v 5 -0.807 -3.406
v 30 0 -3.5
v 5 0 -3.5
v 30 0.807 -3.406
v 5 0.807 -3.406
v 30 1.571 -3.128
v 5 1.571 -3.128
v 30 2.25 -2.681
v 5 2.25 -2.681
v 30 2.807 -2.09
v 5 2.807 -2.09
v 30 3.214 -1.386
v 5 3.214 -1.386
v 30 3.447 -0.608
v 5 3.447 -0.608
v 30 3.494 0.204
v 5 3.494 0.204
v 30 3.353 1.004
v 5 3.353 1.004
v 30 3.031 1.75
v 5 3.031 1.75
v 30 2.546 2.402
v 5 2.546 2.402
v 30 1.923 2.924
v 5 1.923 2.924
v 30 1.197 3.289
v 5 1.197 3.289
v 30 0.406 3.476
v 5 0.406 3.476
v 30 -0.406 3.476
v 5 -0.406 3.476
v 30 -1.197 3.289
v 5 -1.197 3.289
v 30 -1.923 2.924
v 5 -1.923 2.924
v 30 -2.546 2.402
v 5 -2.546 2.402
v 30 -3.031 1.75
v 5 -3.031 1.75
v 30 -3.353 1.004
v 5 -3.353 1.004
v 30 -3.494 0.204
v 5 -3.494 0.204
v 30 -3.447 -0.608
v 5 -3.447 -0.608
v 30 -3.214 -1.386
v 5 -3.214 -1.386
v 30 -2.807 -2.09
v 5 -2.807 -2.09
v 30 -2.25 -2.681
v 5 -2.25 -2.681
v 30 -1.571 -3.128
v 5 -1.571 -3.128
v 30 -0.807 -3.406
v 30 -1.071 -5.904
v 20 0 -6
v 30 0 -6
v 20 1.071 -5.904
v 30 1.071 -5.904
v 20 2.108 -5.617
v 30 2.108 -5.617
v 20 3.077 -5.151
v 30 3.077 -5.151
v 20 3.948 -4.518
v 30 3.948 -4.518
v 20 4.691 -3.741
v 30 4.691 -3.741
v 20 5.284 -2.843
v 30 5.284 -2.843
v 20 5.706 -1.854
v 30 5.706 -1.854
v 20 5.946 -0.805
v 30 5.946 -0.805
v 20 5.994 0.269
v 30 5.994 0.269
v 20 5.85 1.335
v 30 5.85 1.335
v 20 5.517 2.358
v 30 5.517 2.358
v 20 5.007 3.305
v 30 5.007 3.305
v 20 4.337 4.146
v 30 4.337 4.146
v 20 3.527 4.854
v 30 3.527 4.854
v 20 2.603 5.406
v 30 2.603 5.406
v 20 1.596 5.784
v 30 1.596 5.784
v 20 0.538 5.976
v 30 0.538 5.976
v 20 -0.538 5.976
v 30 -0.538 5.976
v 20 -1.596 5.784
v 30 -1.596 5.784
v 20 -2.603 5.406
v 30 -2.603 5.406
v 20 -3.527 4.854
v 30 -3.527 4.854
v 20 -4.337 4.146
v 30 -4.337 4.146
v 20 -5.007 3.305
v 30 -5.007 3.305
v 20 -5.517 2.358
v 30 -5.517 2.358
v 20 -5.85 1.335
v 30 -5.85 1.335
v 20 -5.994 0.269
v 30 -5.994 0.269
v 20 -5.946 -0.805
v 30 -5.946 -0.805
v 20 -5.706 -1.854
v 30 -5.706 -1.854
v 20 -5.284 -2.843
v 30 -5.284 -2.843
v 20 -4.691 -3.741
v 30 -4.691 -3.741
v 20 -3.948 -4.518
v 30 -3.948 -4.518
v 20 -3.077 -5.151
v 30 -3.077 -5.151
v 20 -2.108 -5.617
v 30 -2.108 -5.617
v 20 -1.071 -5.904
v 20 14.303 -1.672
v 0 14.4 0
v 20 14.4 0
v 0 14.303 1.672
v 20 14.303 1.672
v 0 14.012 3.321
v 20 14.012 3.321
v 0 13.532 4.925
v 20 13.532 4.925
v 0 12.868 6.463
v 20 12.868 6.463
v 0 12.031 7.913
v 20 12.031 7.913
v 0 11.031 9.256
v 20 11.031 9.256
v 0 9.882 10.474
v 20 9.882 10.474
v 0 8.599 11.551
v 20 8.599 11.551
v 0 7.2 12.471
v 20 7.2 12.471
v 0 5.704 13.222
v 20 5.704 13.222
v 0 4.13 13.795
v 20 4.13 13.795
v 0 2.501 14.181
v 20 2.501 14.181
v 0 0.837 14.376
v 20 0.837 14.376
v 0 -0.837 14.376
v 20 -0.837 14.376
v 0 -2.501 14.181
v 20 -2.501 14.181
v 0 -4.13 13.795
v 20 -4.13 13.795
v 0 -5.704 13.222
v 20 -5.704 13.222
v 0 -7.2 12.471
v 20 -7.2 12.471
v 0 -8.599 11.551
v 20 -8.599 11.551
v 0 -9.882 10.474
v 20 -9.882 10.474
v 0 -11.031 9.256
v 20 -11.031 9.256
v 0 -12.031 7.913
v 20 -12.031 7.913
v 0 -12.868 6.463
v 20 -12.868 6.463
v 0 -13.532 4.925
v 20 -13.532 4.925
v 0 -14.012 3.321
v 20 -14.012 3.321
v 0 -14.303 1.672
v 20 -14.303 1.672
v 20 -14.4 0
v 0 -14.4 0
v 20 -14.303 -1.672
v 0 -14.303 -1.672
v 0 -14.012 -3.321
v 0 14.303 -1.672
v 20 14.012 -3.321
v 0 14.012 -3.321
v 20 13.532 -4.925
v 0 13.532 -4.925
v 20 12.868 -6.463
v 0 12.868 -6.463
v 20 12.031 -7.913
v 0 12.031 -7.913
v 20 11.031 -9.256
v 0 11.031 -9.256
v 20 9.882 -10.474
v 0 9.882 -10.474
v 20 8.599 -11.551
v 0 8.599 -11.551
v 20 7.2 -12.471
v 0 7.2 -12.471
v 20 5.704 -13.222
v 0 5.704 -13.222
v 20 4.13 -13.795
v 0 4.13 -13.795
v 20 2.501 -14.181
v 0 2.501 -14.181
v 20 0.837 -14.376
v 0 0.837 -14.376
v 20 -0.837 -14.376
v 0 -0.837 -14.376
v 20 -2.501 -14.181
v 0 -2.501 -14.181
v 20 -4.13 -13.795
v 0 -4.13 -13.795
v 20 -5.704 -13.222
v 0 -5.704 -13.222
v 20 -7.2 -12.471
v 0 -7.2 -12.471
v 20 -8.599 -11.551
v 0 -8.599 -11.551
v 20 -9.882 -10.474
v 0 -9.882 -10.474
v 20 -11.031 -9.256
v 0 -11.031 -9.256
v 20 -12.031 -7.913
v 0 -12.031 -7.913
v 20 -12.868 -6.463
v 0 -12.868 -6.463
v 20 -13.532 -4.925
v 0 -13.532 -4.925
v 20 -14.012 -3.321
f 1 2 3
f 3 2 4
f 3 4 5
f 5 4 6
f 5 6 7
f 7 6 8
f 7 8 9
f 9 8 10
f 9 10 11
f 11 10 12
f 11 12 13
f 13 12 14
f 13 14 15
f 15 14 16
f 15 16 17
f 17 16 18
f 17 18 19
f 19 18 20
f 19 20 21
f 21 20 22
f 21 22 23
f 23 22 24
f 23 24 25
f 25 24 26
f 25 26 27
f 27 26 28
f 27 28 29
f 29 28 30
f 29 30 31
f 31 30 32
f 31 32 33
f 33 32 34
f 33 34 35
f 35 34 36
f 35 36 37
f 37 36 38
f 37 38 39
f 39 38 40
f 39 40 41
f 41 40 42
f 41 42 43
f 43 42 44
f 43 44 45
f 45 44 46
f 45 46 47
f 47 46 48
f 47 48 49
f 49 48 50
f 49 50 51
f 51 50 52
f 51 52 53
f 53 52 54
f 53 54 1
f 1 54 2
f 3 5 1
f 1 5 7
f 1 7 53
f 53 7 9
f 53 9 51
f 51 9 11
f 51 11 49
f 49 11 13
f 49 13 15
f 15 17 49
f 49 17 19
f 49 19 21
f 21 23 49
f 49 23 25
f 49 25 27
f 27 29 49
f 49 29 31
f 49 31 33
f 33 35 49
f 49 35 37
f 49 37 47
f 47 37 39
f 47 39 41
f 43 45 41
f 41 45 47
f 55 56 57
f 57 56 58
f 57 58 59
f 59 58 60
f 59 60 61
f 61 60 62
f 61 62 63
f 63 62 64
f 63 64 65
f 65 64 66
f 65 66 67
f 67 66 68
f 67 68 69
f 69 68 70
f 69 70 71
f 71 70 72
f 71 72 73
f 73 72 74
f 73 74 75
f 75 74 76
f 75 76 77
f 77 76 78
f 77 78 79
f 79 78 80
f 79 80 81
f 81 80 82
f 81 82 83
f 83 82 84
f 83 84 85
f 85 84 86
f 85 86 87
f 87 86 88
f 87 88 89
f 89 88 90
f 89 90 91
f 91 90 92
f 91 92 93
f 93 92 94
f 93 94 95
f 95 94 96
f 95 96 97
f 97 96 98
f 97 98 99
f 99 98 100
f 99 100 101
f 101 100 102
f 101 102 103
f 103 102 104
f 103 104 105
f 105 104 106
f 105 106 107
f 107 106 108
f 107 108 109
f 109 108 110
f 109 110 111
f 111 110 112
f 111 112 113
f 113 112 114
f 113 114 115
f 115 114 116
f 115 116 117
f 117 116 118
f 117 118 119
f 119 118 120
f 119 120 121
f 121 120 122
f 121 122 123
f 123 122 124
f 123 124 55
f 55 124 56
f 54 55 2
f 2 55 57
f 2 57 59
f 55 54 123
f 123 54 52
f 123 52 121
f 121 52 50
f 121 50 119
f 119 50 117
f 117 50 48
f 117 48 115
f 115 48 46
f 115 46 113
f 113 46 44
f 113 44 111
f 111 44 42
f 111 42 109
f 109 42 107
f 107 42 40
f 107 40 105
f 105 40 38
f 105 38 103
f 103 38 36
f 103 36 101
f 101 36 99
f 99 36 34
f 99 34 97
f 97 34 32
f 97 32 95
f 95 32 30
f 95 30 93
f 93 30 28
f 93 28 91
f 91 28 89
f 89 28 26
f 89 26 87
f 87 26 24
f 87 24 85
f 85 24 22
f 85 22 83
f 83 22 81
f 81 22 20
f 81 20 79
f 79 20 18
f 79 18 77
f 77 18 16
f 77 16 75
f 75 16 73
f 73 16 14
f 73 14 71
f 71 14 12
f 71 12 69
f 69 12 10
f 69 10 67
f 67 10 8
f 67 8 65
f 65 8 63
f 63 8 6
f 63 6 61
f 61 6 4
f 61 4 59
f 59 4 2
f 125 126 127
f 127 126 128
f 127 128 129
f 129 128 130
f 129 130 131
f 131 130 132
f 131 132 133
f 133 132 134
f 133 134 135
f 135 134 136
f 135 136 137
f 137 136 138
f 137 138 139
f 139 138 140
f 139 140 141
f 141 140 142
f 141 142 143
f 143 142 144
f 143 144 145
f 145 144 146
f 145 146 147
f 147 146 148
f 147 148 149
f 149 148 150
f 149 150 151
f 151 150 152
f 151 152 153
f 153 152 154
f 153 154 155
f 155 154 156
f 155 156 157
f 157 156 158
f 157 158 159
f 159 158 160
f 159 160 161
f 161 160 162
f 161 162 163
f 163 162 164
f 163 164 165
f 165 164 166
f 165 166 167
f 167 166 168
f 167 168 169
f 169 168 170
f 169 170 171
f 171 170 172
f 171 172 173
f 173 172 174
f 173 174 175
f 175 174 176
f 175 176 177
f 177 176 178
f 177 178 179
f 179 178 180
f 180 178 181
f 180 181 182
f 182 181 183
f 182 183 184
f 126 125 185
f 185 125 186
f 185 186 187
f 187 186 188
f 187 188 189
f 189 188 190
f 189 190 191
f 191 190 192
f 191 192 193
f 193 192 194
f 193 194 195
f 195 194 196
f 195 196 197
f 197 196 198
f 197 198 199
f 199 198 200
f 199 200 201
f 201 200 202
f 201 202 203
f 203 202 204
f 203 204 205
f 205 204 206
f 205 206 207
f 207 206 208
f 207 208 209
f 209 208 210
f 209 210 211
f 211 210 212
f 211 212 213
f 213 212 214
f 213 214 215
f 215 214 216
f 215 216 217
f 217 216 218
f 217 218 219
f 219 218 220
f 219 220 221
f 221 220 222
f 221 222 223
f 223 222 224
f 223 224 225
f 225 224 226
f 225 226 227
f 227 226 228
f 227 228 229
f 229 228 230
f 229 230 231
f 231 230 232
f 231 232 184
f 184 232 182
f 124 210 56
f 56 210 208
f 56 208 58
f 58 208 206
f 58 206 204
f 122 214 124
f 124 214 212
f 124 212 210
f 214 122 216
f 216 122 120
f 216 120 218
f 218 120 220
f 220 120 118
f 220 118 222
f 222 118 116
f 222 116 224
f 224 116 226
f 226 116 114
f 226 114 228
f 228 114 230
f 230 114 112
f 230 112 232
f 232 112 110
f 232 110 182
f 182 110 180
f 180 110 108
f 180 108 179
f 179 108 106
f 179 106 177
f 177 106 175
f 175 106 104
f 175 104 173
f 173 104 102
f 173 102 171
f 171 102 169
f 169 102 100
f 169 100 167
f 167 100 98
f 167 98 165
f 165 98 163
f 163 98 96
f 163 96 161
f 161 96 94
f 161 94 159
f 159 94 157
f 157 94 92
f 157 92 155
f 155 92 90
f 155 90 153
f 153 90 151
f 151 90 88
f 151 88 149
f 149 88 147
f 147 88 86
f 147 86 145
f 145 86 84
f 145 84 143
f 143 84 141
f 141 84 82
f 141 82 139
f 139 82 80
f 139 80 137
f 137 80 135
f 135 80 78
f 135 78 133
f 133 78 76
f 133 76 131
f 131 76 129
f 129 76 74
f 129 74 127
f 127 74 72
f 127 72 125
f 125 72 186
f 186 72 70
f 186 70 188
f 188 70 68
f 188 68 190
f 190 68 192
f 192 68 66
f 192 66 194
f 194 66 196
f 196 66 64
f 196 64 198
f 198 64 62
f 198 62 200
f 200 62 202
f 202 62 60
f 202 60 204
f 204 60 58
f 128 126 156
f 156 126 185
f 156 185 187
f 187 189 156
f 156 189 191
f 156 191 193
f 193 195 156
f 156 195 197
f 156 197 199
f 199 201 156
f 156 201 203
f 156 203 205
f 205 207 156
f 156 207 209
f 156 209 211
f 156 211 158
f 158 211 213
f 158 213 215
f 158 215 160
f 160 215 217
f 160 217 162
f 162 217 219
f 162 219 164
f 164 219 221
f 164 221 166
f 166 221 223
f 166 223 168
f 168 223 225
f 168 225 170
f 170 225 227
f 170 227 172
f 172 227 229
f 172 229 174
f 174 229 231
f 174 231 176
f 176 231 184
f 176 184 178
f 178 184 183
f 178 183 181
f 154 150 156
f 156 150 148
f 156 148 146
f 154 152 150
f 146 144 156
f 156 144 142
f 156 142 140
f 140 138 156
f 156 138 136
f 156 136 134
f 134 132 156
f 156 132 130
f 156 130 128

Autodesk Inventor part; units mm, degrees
ref_plane "YZ Plane" through (0, 0, 0) normal (1, 0, 0) x (0, 1, 0)
ref_plane "XZ Plane" through (0, 0, 0) normal (0, 1, 0) x (-1, 0, 0)
ref_plane "XY Plane" through (0, 0, 0) normal (0, 0, 1) x (1, 0, 0)
sketch "Sketch1" plane through (0, 0, 0) normal (1, 0, 0) x (0, 1, 0)
  circle A0 centre (0, 0) radius 14.4
  dimension "d0" = 28.8
extrude "Extrusion1" add sketch "Sketch1" along normal blind 20
sketch "Sketch2" plane through (20, 0, 0) normal (1, 0, 0) x (0, 0, -1)
  circle A0 centre (0, 0) radius 3.5
  circle A1 centre (0, 0) radius 6
  dimension "d3" = 7
  dimension "d4" = 12
extrude "Extrusion2" add sketch "Sketch2" along normal blind 10 contours A0 | A1
sketch "Sketch3" plane through (30, 0, 0) normal (1, 0, 0) x (0, 0, -1)
  circle A0 centre (0, 0) radius 3.5
  dimension "d7" = 7
extrude "Extrusion3" cut sketch "Sketch3" against normal blind 25
properties part number "wheels" material "Rubber"
